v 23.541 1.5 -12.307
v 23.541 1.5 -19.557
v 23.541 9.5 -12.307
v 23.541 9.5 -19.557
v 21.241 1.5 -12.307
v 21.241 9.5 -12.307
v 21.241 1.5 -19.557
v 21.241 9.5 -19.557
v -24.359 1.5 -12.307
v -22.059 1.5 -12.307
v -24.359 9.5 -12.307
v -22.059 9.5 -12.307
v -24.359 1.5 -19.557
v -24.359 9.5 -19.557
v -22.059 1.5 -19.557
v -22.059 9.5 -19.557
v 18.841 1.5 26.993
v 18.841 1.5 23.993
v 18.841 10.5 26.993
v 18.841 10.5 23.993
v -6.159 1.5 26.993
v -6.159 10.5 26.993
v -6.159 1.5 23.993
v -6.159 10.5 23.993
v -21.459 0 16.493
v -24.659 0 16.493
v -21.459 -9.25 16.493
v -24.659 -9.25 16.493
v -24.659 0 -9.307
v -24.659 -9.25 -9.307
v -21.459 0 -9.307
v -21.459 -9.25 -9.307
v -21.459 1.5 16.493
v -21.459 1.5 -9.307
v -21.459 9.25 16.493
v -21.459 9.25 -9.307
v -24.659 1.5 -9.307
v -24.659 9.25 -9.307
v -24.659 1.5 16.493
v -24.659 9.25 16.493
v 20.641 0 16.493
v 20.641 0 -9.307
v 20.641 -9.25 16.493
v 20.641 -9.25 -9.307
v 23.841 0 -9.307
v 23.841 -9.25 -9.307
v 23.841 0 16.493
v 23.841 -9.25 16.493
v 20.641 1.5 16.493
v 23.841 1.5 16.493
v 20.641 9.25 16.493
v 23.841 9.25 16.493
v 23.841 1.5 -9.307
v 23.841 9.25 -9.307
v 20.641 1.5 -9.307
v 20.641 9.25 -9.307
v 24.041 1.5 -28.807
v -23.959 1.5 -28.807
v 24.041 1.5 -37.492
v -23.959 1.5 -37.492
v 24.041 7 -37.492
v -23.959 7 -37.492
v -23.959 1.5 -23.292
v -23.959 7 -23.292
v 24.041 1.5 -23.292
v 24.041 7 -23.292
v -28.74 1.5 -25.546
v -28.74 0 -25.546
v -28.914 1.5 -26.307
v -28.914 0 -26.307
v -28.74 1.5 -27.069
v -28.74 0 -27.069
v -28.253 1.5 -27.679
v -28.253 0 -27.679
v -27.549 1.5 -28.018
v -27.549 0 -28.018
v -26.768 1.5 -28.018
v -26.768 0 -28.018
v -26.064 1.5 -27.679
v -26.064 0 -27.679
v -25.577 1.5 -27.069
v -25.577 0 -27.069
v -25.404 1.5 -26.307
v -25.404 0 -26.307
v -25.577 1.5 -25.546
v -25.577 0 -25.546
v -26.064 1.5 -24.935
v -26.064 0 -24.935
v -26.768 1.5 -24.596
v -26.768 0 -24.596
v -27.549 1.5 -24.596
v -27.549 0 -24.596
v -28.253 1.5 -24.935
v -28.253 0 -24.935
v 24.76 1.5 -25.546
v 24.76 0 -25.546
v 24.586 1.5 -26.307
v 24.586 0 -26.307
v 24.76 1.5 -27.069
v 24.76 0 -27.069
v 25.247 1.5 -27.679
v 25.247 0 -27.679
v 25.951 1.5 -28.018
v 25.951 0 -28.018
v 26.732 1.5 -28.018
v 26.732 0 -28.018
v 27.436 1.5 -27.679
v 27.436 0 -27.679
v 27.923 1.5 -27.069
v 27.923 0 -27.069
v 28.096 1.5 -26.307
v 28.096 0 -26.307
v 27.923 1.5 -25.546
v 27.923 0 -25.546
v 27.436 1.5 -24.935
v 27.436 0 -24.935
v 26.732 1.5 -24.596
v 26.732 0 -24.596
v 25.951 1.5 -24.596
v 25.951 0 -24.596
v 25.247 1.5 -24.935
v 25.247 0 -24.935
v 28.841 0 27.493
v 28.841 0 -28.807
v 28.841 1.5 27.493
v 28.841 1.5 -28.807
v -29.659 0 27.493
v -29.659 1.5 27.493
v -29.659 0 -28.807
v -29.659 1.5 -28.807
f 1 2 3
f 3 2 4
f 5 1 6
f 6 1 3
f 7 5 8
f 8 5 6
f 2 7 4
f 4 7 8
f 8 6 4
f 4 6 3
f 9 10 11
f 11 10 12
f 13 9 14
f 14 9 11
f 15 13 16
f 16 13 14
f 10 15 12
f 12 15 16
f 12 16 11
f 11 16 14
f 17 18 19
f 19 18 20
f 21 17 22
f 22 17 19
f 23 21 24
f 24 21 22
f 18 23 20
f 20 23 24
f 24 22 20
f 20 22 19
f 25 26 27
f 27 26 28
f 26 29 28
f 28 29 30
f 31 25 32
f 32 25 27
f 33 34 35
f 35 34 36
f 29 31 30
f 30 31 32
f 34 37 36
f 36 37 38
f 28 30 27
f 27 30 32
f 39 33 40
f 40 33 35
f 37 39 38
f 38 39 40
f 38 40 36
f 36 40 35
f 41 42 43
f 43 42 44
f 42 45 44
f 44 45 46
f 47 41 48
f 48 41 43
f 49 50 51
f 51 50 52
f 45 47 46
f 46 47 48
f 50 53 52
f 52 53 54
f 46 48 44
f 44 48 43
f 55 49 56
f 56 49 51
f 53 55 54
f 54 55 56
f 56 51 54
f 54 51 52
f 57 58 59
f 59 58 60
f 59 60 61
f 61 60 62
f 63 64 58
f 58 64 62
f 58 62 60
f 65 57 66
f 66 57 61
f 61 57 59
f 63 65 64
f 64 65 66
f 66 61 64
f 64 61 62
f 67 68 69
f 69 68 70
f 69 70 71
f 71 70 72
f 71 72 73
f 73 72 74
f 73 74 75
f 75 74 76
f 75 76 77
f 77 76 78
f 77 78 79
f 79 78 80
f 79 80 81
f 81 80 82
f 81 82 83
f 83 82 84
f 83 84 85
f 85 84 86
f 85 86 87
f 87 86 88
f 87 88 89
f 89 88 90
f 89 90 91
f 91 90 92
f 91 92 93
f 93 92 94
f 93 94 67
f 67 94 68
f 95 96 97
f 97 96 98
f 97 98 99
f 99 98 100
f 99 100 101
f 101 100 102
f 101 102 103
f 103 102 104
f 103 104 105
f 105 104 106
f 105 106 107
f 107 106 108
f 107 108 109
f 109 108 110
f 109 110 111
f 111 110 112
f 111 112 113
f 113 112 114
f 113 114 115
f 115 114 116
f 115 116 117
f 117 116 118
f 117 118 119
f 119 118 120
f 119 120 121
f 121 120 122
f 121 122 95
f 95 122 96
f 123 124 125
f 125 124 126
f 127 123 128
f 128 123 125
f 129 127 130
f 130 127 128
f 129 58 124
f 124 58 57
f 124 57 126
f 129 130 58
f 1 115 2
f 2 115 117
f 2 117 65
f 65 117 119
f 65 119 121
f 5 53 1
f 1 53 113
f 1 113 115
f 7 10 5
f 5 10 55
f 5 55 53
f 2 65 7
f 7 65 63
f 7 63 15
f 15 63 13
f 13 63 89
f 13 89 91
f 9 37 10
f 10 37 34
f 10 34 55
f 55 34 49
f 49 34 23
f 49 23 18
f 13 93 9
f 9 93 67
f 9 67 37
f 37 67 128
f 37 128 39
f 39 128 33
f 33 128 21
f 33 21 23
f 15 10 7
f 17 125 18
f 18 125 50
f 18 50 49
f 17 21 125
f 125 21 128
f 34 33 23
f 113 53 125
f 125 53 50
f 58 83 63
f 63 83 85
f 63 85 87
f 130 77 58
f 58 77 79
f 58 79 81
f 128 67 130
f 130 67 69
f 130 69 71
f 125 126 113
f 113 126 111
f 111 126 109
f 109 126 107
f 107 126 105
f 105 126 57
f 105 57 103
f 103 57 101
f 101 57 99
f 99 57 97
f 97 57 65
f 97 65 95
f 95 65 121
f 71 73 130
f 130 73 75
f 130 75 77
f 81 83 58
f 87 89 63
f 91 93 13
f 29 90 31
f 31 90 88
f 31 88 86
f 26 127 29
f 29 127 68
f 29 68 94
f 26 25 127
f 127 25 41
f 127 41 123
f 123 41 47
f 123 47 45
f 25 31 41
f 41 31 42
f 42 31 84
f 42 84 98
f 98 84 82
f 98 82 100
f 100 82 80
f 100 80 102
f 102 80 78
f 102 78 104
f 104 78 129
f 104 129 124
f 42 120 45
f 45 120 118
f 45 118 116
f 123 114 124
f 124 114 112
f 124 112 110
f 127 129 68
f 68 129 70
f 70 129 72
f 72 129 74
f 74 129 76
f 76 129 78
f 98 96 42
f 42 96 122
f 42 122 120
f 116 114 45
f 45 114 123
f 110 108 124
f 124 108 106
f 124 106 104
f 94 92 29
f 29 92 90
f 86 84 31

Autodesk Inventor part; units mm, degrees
ref_plane "YZ Plane" through (0, 0, 0) normal (1, 0, 0) x (0, 1, 0)
ref_plane "XZ Plane" through (0, 0, 0) normal (0, 1, 0) x (-1, 0, 0)
ref_plane "XY Plane" through (0, 0, 0) normal (0, 0, 1) x (1, 0, 0)
sketch "Base Board" plane through (0, 0, 0) normal (0, 1, 0) x (-1, 0, 0)
  line L0 (-28.8413, 27.4927) -> (29.6587, 27.4927)
  line L1 (29.6587, 27.4927) -> (29.6587, -28.8073)
  line L2 (29.6587, -28.8073) -> (-28.8413, -28.8073)
  line L3 (-28.8413, -28.8073) -> (-28.8413, 27.4927)
  circle A0 centre (27.1587, -26.3073) radius 1.755
  circle A1 centre (-26.3413, -26.3073) radius 1.755
  line L4 (-23.8413, 16.4927) -> (-20.6413, 16.4927)
  line L5 (-20.6413, 16.4927) -> (-20.6413, -9.3073)
  line L6 (-20.6413, -9.3073) -> (-23.8413, -9.3073)
  line L7 (-23.8413, -9.3073) -> (-23.8413, 16.4927)
  line L8 (24.6587, 16.4927) -> (21.4587, 16.4927)
  line L9 (21.4587, 16.4927) -> (21.4587, -9.3073)
  line L10 (21.4587, -9.3073) -> (24.6587, -9.3073)
  line L11 (24.6587, -9.3073) -> (24.6587, 16.4927)
  point P0 (0, 0)
  dimension "d0" = 58.5
  dimension "d1" = 56.3
  dimension "d2" = 3.51
  dimension "d3" = 2.5
  dimension "d4" = 2.5
  dimension "d5" = 3.51
  dimension "d6" = 2.5
  dimension "d7" = 2.5
  dimension "d19" = 3.2
  dimension "d20" = 25.8
  dimension "d23" = 11
  dimension "d24" = 5
  dimension "d25" = 11
  dimension "d26" = 5
extrude "Base Board Extrusion" add sketch "Base Board" along normal blind 1.5 contours L0 L1 L2 L3 | L4 L5 L6 L7 | L11 L10 L9 L8
sketch "Sketch2" plane through (0, 1.5, 0) normal (0, 1, 0) x (1, 0, 0)
  line L0 (-23.9587, 28.2917) -> (24.0413, 28.2917)
  line L1 (24.0413, 28.2917) -> (24.0413, 23.2917)
  line L2 (24.0413, 23.2917) -> (-23.9587, 23.2917)
  line L3 (-23.9587, 23.2917) -> (-23.9587, 28.2917)
  line L4 (-29.6587, 28.8073) -> (-29.6587, -27.4927) projected
  point P0 (0, 0)
  dimension "d10" = 48
  dimension "d11" = 5
  dimension "d12" = 5.7
extrude "RightAngleconnectorsBase" add sketch "Sketch2" along normal blind 5.5
sketch "Sketch4" plane through (24.0413, 1.5, -28.2917) normal (0, 0, -1) x (-1, 0, 0)
  line L0 (48, 5.5) -> (0, 5.5) projected
  line L1 (48, 0) -> (48, 5.5) projected
  line L2 (0, 5.5) -> (48, 5.5)
  line L3 (48, 5.5) -> (48, 0)
  line L4 (48, 0) -> (0, 0)
  line L5 (0, 0) -> (0, 5.5)
  point P0 (24.0413, -1.5)
extrude "RightAnglePins" add sketch "Sketch4" along normal blind 9.2
extrude "Main IO" add sketch "Base Board" along normal mid plane 18.5 contours L4 L5 L6 L7 | L11 L10 L9 L8
sketch "Sketch6" plane through (0, 1.5, 0) normal (0, 1, 0) x (1, 0, 0)
  line L0 (18.8413, -26.9927) -> (-6.1587, -26.9927)
  line L1 (-6.1587, -26.9927) -> (-6.1587, -23.9927)
  line L2 (-6.1587, -23.9927) -> (18.8413, -23.9927)
  line L3 (18.8413, -23.9927) -> (18.8413, -26.9927)
  line L4 (28.8413, -27.4927) -> (28.8413, 28.8073) projected
  line L5 (-29.6587, -27.4927) -> (28.8413, -27.4927) projected
  point P0 (0, 0)
  dimension "d29" = 25
  dimension "d30" = 3
  dimension "d31" = 10
  dimension "d32" = 0.5
extrude "Emulator Pins" add sketch "Sketch6" along normal blind 9
sketch "Sketch7" plane through (0, 1.5, 0) normal (0, 1, 0) x (1, 0, 0)
  line L0 (23.5413, 12.3073) -> (21.2413, 12.3073)
  line L1 (21.2413, 12.3073) -> (21.2413, 19.5573)
  line L2 (21.2413, 19.5573) -> (23.5413, 19.5573)
  line L3 (23.5413, 19.5573) -> (23.5413, 12.3073)
  line L4 (28.8413, -27.4927) -> (28.8413, 28.8073) projected
  line L5 (23.8413, 9.3073) -> (20.6413, 9.3073) projected
  line L6 (-29.6587, -27.4927) -> (28.8413, -27.4927) projected
  line L7 (-24.3587, 12.3073) -> (-22.0587, 12.3073)
  line L8 (-22.0587, 12.3073) -> (-22.0587, 19.5573)
  line L9 (-22.0587, 19.5573) -> (-24.3587, 19.5573)
  line L10 (-24.3587, 19.5573) -> (-24.3587, 12.3073)
  point P0 (0, 0)
  dimension "d35" = 2.3
  dimension "d36" = 7.25
  dimension "d37" = 5.3
  dimension "d38" = 3
extrude "Power Pins" add sketch "Sketch7" along normal blind 8
properties part number "MSP432CoreModule"
